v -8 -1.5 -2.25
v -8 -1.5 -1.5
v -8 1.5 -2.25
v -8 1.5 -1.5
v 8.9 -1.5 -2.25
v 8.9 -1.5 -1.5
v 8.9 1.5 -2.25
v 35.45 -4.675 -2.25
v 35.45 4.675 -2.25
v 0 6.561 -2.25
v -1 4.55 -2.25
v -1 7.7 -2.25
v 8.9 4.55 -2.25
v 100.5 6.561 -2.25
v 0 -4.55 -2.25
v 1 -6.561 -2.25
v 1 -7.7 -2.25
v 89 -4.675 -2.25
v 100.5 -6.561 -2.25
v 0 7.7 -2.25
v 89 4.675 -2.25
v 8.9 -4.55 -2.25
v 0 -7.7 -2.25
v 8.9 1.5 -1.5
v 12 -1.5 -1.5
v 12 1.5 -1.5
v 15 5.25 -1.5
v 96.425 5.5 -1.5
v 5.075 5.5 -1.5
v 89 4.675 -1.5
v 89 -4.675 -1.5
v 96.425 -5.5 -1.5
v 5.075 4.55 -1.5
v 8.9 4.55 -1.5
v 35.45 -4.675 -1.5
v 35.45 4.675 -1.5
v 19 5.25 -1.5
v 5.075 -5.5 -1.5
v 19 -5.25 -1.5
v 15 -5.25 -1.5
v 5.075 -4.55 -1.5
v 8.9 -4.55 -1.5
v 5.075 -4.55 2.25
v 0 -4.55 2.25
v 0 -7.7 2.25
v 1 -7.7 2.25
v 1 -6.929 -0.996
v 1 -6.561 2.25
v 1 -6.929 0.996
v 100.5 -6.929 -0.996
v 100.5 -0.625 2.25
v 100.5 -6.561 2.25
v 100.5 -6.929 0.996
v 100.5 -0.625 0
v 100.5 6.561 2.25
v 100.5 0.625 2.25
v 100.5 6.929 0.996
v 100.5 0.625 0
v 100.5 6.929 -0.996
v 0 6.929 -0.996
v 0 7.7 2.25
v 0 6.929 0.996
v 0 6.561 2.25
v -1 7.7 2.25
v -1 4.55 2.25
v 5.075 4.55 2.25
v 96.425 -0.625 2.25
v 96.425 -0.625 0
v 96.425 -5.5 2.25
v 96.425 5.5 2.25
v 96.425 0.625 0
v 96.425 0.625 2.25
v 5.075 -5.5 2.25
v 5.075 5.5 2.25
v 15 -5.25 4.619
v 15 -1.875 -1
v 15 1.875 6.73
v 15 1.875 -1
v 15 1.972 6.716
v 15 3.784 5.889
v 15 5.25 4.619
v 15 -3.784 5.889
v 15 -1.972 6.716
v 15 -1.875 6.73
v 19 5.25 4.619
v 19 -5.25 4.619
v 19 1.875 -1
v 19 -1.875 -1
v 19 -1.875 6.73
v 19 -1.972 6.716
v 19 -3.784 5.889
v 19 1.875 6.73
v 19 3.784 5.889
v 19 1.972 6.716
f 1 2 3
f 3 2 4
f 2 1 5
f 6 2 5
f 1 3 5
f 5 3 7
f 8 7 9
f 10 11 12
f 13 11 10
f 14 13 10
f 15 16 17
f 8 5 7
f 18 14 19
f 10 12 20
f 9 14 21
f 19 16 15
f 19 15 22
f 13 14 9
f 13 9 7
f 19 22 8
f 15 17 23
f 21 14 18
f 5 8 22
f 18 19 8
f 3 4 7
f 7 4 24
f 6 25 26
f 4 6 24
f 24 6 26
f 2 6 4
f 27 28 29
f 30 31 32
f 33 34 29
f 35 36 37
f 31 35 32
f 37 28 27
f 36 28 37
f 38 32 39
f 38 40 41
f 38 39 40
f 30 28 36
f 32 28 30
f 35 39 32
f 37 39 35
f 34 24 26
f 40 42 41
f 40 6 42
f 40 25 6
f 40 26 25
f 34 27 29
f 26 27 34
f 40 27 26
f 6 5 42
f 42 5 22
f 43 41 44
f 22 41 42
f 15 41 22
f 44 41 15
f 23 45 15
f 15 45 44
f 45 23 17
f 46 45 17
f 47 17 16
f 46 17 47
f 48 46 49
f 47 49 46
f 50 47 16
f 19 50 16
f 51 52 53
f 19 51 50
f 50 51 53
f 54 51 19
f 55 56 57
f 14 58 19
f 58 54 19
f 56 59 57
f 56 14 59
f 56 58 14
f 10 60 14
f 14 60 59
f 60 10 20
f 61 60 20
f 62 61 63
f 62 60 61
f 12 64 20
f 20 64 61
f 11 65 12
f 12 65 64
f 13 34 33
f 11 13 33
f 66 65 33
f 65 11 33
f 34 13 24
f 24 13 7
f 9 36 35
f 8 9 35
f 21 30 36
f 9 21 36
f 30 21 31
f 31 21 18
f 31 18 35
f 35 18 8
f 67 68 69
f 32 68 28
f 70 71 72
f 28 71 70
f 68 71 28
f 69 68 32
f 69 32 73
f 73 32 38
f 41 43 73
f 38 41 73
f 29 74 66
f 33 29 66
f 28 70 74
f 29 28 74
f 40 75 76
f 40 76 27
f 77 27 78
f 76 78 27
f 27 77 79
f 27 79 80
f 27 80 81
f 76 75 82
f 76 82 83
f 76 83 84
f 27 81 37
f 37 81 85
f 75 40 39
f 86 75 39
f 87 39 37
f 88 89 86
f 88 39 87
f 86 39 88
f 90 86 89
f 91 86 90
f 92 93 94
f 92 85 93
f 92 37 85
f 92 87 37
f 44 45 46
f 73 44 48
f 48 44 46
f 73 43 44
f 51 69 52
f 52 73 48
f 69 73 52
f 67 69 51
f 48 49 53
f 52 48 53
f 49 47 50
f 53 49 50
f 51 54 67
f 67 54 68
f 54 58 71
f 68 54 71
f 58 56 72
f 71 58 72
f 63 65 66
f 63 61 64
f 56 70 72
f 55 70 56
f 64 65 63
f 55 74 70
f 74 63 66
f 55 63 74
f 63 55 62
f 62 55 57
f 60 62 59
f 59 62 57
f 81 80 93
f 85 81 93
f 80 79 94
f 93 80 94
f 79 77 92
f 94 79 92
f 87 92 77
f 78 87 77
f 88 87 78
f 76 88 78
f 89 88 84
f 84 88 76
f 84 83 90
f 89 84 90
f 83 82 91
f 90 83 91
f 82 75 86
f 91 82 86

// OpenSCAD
terminal_h = 1.5;
outer_slot_d = 17.75;
inner_slot_d = 14;
inner_slot_l = 103-terminal_h;
outer_slot_l = 130;
wired_d = 0.7;

module inner_slot() {
  translate([-1,0,0]) rotate(a=90, v=[0,1,0]) cylinder(d=inner_slot_d, h=inner_slot_l);
}
module outer_slot() {
  rotate(a=90, v=[0,1,0]) cylinder(d=outer_slot_d, h=outer_slot_l, $fn=50);
}
module terminal() {
  color("White") translate([inner_slot_l,0,0]) rotate(a=90, v=[0,1,0]) cylinder(d=6, h=terminal_h, $fn=50);
}
module slot() {
  difference() {
    outer_slot();
		inner_slot();
  }
	terminal();
}
//%slot();
//#terminal();

board_w = 11;
board_l = 63;
board_top_h = 5;
board_thickness = 1.5;
board_bottom_h = 3.5;
board_h = board_top_h + board_thickness + board_bottom_h;
module board() {
  translate([30,-board_w/2,-board_h/2])
    color("Brown") cube([board_l, board_w, board_h]);
  translate([30,-board_w/2,-board_h/2+board_bottom_h])
	  color("Yellow") cube([board_l, board_w, board_thickness]);
}
//board();

frame_h = 3 * board_thickness;
module frame_cutout_for_board() {
	translate([inner_slot_l*0.1/2, -board_w/2, -board_thickness])
		cube([inner_slot_l*0.9, board_w, frame_h]);
}
board_support_ratio = 0.85;
module frame_cutout_for_board_bottom() {
	translate([
		26+board_l*(1-board_support_ratio),
		-board_w/2+board_w*(1-board_support_ratio)/2,
		-board_h/2-board_h*0.1
	])
		cube([board_l*board_support_ratio, board_w*board_support_ratio, board_h*1.1]);
}

module frame() {
  difference() {
    union() {
	    translate([0,-inner_slot_d/2,-frame_h/2])
        cube([inner_slot_l, inner_slot_d, frame_h]);
		};
    frame_cutout_for_board();
frame_cutout_for_board_bottom();
		spring_cutout();
	  slot();
	}
}

module frame_teeth(side) {
  rotate(a=180*side, v=[0,0,1])
  translate([0,-inner_slot_d*1.1/2,-frame_h/2]) cube([1, inner_slot_d*1.1/2, frame_h]);
}
frame_teeth_cutout_w = inner_slot_d/2*1.3;
frame_teeth_cutout_h = inner_slot_d/2;
module frame_teeth_cutout() {
  translate([-1.1,-frame_teeth_cutout_w/2,-frame_teeth_cutout_h/2]) cube([10,frame_teeth_cutout_w,frame_teeth_cutout_h]);
}
module safety_tab() {
  translate([-8,-3/2,-frame_h/2]) cube([20,3,0.75]);
}
module the_whole_frame() {
union() {
	  difference() {
	  union() {
      frame();
      frame_teeth(1);
      frame_teeth(0);
    }
    frame_teeth_cutout();
	}
	safety_tab();
	}
}
the_whole_frame();

usb_cable_width = 3.75;
strain_relief_thickness = 4;
strain_relief_offset = 15;
strain_relief_width = inner_slot_d*3/4;
module strain_relief() {
  difference() {
	  union() {
      translate([strain_relief_offset,-strain_relief_width/2,-2])
	      cube([strain_relief_thickness,strain_relief_width,inner_slot_d/2+2]);
		}
	  slot();
		translate([strain_relief_offset-0.5,-usb_cable_width/2,-1])
   		cube([strain_relief_offset+1,usb_cable_width,inner_slot_d/2+1]);
  }
}
strain_relief();


spring_d = 1.25;
spring_cutout_w = 10;
spring_cutout_h = inner_slot_d/2;
module spring_cutout() {
  translate([inner_slot_l-10,-spring_d/2,0]) cube([spring_cutout_w,spring_d,spring_cutout_h]);
}
